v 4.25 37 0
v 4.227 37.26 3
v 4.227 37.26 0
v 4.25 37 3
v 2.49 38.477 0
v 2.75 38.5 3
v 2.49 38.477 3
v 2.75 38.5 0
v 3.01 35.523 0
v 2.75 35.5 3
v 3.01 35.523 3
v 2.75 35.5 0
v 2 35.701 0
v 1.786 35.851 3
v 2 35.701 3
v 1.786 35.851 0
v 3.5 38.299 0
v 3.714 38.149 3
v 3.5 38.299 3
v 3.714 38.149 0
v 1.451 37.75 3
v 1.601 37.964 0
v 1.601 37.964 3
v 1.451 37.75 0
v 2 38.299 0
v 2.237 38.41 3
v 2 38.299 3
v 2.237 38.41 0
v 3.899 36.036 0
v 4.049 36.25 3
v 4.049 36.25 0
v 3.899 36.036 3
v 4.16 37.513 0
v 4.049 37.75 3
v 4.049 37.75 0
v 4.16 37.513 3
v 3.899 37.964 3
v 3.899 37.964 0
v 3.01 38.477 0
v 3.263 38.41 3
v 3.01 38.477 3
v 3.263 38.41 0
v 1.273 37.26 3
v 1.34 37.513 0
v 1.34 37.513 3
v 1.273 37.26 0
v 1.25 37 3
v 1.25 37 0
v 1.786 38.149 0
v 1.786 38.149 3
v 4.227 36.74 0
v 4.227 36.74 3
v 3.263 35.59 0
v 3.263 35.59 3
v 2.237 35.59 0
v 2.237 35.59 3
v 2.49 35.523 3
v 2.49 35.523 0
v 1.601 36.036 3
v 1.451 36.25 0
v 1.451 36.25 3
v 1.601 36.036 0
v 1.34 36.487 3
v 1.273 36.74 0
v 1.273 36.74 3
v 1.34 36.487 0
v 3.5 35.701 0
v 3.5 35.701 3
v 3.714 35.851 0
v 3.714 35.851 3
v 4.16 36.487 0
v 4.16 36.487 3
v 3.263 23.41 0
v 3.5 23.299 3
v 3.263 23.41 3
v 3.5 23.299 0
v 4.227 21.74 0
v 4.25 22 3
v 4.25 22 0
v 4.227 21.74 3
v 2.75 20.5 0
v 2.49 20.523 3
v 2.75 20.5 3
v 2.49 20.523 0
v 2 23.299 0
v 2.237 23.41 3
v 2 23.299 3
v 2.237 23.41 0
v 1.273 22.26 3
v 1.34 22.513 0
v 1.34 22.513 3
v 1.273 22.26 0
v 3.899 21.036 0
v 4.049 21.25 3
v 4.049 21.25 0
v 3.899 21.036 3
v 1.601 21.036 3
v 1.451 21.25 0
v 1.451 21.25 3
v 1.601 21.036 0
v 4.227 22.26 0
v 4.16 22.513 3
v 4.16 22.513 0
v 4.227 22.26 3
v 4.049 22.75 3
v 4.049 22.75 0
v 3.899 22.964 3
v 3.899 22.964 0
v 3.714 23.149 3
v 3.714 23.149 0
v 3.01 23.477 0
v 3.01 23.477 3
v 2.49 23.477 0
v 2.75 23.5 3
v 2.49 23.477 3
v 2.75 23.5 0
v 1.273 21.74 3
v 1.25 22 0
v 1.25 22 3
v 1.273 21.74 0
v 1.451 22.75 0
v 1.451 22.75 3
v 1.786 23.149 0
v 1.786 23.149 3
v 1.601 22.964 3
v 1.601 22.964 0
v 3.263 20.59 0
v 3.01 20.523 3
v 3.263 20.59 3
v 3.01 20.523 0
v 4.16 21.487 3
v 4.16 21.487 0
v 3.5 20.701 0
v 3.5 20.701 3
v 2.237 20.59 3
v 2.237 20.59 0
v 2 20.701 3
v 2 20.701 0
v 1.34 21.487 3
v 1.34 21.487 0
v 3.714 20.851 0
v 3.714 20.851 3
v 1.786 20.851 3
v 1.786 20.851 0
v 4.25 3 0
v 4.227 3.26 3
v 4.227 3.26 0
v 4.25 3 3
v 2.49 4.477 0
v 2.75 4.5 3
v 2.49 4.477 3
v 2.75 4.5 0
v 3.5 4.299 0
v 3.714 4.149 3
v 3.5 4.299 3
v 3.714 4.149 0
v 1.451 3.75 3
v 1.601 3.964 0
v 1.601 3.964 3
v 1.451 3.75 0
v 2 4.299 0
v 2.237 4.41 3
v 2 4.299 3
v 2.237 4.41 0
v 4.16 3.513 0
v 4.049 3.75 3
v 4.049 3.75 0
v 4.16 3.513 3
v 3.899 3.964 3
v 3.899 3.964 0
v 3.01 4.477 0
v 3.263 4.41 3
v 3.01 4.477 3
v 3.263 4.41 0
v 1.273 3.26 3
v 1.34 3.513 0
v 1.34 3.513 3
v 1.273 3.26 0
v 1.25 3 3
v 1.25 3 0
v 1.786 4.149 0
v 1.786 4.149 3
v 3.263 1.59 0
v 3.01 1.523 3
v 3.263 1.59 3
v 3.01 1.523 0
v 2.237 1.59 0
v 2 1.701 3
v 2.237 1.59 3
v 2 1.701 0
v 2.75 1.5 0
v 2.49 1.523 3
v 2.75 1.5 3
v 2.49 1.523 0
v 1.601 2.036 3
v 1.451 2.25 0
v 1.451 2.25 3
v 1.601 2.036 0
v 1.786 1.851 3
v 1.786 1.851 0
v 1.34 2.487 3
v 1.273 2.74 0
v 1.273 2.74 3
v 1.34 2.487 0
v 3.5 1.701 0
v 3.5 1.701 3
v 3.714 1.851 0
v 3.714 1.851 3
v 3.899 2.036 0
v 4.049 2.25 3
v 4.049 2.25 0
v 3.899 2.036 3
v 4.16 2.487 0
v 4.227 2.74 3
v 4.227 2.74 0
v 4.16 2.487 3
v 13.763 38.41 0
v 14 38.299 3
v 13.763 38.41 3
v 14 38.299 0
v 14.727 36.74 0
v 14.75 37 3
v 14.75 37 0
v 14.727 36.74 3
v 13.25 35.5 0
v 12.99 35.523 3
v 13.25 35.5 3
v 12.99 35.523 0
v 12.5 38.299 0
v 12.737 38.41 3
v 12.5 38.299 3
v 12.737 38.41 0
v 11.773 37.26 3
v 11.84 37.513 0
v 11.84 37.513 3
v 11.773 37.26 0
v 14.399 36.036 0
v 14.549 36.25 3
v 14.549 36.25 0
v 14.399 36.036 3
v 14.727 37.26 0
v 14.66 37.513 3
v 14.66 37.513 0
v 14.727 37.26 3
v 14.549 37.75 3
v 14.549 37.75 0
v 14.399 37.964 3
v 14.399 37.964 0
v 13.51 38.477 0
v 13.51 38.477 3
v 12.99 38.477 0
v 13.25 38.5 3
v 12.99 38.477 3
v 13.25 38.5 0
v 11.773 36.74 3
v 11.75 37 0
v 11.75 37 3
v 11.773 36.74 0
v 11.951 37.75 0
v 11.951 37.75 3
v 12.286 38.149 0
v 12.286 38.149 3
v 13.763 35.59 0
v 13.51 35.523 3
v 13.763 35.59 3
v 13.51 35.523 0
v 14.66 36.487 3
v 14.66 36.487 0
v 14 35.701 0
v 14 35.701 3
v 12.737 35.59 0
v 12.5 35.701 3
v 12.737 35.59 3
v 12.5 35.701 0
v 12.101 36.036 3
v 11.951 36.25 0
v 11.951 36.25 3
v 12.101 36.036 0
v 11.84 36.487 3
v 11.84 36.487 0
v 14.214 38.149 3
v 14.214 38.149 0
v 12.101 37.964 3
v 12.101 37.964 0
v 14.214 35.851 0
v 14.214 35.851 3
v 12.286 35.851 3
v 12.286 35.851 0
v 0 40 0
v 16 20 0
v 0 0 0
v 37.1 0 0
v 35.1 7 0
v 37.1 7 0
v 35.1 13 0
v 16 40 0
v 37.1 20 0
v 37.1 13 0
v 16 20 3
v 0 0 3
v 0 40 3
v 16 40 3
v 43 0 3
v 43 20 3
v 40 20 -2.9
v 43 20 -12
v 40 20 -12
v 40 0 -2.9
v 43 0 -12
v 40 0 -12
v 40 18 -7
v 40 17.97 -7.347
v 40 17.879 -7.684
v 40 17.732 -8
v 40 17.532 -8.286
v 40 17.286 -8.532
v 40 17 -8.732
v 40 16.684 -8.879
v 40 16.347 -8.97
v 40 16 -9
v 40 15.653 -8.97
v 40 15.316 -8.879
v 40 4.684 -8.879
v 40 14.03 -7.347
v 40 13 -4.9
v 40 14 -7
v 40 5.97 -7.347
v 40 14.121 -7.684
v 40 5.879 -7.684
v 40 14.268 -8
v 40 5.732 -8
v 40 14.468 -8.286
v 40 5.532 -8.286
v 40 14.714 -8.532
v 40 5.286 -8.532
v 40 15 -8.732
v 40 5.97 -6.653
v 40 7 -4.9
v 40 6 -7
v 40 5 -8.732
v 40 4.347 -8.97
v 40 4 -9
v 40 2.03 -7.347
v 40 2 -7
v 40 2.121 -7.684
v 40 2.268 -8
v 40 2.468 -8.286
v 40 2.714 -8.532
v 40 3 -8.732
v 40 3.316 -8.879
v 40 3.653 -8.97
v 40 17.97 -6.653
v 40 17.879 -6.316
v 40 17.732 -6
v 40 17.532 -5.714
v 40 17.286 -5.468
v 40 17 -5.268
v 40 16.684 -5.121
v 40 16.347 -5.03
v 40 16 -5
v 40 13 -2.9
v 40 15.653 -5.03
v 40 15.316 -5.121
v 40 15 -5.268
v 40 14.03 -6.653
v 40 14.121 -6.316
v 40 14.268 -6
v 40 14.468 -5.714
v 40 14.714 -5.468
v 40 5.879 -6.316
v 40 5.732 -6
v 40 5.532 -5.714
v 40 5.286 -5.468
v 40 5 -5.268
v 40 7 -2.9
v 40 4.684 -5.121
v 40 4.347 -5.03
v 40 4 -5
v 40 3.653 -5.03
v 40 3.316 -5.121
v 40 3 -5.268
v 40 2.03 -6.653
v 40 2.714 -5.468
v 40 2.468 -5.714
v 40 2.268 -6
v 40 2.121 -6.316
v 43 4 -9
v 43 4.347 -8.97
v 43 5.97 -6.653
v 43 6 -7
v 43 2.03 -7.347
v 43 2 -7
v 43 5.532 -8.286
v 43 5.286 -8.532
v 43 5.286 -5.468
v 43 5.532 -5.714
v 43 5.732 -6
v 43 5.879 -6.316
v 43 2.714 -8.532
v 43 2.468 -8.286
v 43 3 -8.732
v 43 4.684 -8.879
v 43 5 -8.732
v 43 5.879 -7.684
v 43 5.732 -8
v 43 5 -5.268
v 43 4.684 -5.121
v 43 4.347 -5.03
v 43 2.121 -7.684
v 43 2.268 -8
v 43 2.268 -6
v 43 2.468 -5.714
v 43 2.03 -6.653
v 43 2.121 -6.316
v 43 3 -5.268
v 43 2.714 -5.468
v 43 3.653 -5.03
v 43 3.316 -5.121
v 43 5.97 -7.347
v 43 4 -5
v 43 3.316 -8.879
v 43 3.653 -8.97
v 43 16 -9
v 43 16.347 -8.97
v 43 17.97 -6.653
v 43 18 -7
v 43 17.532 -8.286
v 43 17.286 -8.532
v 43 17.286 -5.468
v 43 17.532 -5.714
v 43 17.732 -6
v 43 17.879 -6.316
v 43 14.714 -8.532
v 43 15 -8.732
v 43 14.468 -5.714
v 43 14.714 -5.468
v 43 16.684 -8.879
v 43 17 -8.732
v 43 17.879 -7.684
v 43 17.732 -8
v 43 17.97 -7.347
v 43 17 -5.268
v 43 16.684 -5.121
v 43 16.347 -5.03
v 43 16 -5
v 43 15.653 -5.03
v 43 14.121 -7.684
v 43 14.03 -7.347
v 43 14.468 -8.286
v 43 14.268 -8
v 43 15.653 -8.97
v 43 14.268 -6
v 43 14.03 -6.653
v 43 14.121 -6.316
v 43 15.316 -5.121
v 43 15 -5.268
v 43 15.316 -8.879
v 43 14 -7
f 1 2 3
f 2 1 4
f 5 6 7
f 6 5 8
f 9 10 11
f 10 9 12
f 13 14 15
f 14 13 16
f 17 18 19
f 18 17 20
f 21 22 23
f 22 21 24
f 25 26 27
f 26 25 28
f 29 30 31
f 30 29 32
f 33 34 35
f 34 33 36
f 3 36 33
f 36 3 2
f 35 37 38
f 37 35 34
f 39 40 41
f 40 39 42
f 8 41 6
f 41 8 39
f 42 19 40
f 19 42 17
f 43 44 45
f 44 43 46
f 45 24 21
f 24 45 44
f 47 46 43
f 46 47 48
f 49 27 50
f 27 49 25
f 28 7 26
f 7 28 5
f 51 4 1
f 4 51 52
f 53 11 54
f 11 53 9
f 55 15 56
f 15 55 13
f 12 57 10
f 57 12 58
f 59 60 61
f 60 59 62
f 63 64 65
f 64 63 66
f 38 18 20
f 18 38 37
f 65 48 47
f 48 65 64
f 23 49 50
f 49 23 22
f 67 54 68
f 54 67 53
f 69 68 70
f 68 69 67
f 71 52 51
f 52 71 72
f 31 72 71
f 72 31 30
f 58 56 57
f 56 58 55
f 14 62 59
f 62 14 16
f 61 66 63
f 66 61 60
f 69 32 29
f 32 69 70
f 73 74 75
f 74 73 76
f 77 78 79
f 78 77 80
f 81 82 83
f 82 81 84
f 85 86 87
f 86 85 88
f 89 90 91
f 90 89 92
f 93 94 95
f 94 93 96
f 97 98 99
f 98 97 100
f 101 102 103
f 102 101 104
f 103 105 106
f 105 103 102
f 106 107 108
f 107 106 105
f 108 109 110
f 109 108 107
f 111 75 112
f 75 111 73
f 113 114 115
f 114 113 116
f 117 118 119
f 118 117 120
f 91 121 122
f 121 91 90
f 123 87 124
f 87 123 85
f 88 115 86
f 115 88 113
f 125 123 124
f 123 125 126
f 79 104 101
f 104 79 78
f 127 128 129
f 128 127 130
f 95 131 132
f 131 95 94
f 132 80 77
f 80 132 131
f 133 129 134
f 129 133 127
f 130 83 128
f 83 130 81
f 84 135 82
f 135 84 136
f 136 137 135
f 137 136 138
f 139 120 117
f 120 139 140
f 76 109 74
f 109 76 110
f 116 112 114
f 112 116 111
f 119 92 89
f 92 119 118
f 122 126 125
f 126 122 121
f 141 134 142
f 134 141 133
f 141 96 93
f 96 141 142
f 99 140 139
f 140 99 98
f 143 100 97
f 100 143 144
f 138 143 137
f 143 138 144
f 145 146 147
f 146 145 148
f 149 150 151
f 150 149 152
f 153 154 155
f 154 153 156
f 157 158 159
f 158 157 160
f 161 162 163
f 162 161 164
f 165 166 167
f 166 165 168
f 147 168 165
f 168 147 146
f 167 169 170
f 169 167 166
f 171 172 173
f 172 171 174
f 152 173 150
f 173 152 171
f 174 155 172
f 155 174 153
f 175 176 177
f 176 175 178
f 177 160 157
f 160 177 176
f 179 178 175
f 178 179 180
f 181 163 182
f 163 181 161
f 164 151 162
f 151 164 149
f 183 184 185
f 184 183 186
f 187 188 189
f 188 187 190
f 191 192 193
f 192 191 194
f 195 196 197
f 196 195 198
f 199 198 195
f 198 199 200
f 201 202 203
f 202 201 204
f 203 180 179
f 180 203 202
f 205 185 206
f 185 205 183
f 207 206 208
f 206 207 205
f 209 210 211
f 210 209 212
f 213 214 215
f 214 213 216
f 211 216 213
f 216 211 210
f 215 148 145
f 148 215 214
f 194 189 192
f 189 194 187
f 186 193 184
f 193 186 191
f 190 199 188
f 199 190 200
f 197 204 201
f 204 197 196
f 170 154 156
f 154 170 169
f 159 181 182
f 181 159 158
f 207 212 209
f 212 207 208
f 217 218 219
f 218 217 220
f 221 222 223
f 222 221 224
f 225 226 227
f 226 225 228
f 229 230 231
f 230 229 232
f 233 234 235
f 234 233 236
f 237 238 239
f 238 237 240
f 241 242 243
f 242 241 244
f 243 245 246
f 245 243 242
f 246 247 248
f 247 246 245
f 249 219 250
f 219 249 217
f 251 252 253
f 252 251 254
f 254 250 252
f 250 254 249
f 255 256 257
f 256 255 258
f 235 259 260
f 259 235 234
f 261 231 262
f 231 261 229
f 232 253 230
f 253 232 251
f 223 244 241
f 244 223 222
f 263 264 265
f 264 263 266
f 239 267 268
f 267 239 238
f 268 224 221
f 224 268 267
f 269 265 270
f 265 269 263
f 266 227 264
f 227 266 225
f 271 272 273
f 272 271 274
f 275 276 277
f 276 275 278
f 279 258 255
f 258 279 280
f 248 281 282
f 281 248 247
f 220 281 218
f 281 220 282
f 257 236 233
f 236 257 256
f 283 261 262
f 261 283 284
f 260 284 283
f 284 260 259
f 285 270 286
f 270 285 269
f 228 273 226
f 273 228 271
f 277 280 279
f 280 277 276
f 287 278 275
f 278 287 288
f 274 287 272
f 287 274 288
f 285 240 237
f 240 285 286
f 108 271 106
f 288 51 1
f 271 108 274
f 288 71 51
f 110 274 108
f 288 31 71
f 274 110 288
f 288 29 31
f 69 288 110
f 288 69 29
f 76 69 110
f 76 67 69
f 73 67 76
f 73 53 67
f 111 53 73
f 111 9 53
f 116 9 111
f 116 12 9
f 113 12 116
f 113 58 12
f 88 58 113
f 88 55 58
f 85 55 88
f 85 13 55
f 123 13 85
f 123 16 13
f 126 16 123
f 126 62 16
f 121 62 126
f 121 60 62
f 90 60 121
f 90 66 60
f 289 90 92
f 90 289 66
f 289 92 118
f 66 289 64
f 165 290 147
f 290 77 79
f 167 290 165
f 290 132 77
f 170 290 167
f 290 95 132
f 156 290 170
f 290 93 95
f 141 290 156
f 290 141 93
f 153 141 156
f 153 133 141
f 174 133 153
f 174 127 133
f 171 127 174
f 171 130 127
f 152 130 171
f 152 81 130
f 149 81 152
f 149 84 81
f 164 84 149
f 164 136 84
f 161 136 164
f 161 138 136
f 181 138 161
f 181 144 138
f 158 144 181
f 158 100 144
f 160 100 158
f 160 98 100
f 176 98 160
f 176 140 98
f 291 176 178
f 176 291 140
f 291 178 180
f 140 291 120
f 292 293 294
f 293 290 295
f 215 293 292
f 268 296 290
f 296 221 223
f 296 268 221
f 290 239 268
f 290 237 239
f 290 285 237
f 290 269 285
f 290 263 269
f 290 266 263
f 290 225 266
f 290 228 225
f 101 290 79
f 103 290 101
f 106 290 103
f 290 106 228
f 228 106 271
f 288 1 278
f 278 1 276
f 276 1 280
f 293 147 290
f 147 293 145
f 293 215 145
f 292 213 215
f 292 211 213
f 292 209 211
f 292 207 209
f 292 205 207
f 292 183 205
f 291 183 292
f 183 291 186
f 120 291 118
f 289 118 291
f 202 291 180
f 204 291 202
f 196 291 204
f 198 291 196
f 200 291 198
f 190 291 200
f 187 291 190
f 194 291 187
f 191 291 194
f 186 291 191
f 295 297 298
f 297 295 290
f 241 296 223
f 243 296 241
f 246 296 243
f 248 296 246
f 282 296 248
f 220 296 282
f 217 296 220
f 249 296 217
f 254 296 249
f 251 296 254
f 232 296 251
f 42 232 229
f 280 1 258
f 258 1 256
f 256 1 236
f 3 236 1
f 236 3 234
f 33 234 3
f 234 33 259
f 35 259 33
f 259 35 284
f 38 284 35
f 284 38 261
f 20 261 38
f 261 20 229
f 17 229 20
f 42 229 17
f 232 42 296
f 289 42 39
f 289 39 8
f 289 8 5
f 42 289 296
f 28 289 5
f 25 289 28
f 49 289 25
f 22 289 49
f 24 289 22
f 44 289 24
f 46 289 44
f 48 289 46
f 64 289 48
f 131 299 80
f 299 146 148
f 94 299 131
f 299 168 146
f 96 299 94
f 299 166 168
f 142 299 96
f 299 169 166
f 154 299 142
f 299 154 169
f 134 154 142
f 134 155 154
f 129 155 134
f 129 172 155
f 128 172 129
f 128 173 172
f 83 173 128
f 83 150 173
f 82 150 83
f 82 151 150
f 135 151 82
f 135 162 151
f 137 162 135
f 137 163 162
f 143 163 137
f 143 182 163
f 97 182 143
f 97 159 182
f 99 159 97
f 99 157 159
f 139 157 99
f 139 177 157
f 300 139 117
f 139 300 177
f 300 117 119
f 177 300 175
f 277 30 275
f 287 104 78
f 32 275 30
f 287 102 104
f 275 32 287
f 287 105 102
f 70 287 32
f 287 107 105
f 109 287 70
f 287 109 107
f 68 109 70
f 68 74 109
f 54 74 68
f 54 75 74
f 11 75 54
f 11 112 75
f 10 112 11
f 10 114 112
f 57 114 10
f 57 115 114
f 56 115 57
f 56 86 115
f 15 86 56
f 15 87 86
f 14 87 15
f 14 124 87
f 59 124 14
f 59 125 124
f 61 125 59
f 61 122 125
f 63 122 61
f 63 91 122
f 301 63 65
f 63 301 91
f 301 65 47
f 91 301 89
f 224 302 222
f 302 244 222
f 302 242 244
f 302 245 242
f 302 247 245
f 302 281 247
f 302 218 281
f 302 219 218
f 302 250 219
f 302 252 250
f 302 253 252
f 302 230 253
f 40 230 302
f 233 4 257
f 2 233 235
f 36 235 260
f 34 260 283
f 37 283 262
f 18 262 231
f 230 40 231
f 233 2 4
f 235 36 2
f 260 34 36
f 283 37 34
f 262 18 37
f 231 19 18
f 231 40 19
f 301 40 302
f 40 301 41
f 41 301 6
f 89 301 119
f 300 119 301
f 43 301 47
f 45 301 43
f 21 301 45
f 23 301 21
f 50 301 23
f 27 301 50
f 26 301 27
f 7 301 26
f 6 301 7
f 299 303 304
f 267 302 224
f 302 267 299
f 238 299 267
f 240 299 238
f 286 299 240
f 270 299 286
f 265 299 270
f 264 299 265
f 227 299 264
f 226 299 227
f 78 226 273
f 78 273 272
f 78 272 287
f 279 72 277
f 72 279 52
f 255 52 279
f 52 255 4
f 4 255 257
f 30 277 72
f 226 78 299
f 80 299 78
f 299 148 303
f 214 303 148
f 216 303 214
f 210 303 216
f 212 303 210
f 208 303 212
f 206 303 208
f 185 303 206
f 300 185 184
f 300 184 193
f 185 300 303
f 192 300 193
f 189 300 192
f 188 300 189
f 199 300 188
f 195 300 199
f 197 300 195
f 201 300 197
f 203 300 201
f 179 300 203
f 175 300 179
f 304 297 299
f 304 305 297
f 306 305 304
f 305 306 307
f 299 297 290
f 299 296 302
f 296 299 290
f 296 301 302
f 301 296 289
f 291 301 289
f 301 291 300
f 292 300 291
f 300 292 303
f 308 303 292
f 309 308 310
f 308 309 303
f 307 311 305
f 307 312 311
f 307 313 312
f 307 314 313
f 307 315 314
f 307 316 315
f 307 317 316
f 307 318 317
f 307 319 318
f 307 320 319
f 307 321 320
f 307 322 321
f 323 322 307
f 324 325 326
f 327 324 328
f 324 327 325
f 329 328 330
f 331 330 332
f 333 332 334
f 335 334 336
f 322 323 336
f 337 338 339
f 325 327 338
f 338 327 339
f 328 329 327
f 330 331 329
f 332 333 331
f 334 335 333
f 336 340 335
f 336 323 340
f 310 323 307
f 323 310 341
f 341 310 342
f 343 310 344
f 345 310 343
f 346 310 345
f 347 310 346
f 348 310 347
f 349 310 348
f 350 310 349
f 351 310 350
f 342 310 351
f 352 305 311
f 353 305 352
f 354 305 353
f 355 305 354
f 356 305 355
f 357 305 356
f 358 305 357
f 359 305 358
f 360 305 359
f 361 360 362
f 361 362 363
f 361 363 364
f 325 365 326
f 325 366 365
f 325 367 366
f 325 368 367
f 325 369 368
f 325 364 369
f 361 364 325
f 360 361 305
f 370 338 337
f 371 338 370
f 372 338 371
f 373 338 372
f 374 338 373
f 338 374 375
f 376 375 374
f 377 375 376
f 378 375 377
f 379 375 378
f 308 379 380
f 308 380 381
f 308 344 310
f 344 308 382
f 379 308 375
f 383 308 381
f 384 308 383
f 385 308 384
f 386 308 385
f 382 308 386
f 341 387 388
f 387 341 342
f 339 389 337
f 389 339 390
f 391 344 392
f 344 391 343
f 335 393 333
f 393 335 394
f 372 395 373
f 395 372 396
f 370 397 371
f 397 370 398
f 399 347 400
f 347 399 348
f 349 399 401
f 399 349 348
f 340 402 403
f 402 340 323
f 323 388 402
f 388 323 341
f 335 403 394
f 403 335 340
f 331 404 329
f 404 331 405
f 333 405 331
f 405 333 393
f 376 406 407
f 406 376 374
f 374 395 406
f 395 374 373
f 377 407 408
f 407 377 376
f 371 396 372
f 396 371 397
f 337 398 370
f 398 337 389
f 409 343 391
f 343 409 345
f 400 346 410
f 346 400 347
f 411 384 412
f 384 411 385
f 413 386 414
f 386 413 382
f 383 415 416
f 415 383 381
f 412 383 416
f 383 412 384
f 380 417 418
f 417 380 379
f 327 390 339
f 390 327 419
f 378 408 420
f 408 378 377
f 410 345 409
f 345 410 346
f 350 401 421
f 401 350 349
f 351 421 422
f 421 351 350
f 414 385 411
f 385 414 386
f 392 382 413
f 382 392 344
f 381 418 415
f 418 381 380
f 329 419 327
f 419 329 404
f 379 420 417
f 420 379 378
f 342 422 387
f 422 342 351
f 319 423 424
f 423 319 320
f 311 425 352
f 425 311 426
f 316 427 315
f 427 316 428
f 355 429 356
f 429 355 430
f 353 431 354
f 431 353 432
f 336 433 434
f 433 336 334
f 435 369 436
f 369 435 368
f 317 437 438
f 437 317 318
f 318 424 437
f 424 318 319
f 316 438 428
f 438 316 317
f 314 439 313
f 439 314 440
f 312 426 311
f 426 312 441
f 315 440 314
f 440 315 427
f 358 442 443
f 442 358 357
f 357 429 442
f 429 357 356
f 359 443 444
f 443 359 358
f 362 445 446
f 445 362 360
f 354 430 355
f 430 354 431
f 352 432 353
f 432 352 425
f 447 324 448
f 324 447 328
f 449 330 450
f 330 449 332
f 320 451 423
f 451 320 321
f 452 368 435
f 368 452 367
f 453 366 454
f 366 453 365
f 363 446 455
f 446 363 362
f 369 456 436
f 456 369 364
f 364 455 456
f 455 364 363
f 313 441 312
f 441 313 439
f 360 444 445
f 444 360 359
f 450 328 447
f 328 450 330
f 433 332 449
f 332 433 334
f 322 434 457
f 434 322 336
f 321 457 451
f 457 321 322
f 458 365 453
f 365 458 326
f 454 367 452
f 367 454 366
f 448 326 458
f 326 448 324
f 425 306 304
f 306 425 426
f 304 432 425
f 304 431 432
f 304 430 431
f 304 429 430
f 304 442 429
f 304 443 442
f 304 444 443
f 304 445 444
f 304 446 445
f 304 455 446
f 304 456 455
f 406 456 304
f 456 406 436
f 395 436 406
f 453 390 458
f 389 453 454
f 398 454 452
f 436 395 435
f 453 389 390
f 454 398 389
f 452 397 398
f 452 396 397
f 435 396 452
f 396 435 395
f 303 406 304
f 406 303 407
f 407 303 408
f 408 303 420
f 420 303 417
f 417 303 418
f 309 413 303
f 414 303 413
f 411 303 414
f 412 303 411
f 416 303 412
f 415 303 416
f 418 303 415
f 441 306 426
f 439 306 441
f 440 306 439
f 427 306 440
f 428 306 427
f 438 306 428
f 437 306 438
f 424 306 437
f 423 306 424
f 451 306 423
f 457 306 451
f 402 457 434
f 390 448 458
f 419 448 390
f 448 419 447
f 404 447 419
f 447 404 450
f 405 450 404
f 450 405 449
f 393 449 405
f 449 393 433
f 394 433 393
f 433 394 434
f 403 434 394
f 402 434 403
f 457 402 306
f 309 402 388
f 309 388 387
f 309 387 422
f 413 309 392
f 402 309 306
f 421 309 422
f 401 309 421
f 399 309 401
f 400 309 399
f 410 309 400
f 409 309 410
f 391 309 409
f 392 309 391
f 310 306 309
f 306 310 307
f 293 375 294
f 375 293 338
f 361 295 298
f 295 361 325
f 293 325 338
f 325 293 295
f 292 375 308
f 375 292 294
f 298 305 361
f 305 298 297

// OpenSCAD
/* Support endstop pour Électrofraise (axe Z)
   Quimper, la baleine, 6 mars 2020 / pierre<at>lesporteslogiques.net
   openscad version version 2019.05 @ kirin / debian 9.5 stretch 
*/

// plaque pour fixer le endstop
difference() {
    linear_extrude(height=3) polygon(points = [ [0, 0], [40, 0], [40, 20], [16, 20], [16, 40], [0, 40] ]);
    union() {
        translate([2.75, 37, -0.1]) cylinder( h=4, r=1.5, center=false, $fn=36);
        translate([2.75, 22, -0.1]) cylinder( h=4, r=1.5, center=false, $fn=36);
        translate([2.75, 3, -0.1]) cylinder( h=4, r=1.5, center=false, $fn=36);
        translate([13.25, 37, -0.1]) cylinder( h=4, r=1.5, center=false, $fn=36);
    }
}

// plaque de fixation à la fraiseuse
translate([40, 0, 3]) rotate(a=[0, 90, 0]) difference() {
    union() {
        cube(size=[15, 20, 3], center=false);
    }
    
    union() {
        translate([10, 4, -0.1]) cylinder( h=3.2, r=2, center=false, $fn=36);   
        translate([10, 16, -0.1]) cylinder( h=3.2, r=2, center=false, $fn=36);     
    }
}

// Renforts
translate([35.1, 7, 0]) rotate([270, 0, 0]) linear_extrude(height=6) polygon(points = [ [0, 0], [5, 0], [5, 5] ]);
translate([37.1, 0, 0]) rotate([270, 0, 0]) linear_extrude(height=20) polygon(points = [ [0, 0], [3, 0], [3, 3] ]);
